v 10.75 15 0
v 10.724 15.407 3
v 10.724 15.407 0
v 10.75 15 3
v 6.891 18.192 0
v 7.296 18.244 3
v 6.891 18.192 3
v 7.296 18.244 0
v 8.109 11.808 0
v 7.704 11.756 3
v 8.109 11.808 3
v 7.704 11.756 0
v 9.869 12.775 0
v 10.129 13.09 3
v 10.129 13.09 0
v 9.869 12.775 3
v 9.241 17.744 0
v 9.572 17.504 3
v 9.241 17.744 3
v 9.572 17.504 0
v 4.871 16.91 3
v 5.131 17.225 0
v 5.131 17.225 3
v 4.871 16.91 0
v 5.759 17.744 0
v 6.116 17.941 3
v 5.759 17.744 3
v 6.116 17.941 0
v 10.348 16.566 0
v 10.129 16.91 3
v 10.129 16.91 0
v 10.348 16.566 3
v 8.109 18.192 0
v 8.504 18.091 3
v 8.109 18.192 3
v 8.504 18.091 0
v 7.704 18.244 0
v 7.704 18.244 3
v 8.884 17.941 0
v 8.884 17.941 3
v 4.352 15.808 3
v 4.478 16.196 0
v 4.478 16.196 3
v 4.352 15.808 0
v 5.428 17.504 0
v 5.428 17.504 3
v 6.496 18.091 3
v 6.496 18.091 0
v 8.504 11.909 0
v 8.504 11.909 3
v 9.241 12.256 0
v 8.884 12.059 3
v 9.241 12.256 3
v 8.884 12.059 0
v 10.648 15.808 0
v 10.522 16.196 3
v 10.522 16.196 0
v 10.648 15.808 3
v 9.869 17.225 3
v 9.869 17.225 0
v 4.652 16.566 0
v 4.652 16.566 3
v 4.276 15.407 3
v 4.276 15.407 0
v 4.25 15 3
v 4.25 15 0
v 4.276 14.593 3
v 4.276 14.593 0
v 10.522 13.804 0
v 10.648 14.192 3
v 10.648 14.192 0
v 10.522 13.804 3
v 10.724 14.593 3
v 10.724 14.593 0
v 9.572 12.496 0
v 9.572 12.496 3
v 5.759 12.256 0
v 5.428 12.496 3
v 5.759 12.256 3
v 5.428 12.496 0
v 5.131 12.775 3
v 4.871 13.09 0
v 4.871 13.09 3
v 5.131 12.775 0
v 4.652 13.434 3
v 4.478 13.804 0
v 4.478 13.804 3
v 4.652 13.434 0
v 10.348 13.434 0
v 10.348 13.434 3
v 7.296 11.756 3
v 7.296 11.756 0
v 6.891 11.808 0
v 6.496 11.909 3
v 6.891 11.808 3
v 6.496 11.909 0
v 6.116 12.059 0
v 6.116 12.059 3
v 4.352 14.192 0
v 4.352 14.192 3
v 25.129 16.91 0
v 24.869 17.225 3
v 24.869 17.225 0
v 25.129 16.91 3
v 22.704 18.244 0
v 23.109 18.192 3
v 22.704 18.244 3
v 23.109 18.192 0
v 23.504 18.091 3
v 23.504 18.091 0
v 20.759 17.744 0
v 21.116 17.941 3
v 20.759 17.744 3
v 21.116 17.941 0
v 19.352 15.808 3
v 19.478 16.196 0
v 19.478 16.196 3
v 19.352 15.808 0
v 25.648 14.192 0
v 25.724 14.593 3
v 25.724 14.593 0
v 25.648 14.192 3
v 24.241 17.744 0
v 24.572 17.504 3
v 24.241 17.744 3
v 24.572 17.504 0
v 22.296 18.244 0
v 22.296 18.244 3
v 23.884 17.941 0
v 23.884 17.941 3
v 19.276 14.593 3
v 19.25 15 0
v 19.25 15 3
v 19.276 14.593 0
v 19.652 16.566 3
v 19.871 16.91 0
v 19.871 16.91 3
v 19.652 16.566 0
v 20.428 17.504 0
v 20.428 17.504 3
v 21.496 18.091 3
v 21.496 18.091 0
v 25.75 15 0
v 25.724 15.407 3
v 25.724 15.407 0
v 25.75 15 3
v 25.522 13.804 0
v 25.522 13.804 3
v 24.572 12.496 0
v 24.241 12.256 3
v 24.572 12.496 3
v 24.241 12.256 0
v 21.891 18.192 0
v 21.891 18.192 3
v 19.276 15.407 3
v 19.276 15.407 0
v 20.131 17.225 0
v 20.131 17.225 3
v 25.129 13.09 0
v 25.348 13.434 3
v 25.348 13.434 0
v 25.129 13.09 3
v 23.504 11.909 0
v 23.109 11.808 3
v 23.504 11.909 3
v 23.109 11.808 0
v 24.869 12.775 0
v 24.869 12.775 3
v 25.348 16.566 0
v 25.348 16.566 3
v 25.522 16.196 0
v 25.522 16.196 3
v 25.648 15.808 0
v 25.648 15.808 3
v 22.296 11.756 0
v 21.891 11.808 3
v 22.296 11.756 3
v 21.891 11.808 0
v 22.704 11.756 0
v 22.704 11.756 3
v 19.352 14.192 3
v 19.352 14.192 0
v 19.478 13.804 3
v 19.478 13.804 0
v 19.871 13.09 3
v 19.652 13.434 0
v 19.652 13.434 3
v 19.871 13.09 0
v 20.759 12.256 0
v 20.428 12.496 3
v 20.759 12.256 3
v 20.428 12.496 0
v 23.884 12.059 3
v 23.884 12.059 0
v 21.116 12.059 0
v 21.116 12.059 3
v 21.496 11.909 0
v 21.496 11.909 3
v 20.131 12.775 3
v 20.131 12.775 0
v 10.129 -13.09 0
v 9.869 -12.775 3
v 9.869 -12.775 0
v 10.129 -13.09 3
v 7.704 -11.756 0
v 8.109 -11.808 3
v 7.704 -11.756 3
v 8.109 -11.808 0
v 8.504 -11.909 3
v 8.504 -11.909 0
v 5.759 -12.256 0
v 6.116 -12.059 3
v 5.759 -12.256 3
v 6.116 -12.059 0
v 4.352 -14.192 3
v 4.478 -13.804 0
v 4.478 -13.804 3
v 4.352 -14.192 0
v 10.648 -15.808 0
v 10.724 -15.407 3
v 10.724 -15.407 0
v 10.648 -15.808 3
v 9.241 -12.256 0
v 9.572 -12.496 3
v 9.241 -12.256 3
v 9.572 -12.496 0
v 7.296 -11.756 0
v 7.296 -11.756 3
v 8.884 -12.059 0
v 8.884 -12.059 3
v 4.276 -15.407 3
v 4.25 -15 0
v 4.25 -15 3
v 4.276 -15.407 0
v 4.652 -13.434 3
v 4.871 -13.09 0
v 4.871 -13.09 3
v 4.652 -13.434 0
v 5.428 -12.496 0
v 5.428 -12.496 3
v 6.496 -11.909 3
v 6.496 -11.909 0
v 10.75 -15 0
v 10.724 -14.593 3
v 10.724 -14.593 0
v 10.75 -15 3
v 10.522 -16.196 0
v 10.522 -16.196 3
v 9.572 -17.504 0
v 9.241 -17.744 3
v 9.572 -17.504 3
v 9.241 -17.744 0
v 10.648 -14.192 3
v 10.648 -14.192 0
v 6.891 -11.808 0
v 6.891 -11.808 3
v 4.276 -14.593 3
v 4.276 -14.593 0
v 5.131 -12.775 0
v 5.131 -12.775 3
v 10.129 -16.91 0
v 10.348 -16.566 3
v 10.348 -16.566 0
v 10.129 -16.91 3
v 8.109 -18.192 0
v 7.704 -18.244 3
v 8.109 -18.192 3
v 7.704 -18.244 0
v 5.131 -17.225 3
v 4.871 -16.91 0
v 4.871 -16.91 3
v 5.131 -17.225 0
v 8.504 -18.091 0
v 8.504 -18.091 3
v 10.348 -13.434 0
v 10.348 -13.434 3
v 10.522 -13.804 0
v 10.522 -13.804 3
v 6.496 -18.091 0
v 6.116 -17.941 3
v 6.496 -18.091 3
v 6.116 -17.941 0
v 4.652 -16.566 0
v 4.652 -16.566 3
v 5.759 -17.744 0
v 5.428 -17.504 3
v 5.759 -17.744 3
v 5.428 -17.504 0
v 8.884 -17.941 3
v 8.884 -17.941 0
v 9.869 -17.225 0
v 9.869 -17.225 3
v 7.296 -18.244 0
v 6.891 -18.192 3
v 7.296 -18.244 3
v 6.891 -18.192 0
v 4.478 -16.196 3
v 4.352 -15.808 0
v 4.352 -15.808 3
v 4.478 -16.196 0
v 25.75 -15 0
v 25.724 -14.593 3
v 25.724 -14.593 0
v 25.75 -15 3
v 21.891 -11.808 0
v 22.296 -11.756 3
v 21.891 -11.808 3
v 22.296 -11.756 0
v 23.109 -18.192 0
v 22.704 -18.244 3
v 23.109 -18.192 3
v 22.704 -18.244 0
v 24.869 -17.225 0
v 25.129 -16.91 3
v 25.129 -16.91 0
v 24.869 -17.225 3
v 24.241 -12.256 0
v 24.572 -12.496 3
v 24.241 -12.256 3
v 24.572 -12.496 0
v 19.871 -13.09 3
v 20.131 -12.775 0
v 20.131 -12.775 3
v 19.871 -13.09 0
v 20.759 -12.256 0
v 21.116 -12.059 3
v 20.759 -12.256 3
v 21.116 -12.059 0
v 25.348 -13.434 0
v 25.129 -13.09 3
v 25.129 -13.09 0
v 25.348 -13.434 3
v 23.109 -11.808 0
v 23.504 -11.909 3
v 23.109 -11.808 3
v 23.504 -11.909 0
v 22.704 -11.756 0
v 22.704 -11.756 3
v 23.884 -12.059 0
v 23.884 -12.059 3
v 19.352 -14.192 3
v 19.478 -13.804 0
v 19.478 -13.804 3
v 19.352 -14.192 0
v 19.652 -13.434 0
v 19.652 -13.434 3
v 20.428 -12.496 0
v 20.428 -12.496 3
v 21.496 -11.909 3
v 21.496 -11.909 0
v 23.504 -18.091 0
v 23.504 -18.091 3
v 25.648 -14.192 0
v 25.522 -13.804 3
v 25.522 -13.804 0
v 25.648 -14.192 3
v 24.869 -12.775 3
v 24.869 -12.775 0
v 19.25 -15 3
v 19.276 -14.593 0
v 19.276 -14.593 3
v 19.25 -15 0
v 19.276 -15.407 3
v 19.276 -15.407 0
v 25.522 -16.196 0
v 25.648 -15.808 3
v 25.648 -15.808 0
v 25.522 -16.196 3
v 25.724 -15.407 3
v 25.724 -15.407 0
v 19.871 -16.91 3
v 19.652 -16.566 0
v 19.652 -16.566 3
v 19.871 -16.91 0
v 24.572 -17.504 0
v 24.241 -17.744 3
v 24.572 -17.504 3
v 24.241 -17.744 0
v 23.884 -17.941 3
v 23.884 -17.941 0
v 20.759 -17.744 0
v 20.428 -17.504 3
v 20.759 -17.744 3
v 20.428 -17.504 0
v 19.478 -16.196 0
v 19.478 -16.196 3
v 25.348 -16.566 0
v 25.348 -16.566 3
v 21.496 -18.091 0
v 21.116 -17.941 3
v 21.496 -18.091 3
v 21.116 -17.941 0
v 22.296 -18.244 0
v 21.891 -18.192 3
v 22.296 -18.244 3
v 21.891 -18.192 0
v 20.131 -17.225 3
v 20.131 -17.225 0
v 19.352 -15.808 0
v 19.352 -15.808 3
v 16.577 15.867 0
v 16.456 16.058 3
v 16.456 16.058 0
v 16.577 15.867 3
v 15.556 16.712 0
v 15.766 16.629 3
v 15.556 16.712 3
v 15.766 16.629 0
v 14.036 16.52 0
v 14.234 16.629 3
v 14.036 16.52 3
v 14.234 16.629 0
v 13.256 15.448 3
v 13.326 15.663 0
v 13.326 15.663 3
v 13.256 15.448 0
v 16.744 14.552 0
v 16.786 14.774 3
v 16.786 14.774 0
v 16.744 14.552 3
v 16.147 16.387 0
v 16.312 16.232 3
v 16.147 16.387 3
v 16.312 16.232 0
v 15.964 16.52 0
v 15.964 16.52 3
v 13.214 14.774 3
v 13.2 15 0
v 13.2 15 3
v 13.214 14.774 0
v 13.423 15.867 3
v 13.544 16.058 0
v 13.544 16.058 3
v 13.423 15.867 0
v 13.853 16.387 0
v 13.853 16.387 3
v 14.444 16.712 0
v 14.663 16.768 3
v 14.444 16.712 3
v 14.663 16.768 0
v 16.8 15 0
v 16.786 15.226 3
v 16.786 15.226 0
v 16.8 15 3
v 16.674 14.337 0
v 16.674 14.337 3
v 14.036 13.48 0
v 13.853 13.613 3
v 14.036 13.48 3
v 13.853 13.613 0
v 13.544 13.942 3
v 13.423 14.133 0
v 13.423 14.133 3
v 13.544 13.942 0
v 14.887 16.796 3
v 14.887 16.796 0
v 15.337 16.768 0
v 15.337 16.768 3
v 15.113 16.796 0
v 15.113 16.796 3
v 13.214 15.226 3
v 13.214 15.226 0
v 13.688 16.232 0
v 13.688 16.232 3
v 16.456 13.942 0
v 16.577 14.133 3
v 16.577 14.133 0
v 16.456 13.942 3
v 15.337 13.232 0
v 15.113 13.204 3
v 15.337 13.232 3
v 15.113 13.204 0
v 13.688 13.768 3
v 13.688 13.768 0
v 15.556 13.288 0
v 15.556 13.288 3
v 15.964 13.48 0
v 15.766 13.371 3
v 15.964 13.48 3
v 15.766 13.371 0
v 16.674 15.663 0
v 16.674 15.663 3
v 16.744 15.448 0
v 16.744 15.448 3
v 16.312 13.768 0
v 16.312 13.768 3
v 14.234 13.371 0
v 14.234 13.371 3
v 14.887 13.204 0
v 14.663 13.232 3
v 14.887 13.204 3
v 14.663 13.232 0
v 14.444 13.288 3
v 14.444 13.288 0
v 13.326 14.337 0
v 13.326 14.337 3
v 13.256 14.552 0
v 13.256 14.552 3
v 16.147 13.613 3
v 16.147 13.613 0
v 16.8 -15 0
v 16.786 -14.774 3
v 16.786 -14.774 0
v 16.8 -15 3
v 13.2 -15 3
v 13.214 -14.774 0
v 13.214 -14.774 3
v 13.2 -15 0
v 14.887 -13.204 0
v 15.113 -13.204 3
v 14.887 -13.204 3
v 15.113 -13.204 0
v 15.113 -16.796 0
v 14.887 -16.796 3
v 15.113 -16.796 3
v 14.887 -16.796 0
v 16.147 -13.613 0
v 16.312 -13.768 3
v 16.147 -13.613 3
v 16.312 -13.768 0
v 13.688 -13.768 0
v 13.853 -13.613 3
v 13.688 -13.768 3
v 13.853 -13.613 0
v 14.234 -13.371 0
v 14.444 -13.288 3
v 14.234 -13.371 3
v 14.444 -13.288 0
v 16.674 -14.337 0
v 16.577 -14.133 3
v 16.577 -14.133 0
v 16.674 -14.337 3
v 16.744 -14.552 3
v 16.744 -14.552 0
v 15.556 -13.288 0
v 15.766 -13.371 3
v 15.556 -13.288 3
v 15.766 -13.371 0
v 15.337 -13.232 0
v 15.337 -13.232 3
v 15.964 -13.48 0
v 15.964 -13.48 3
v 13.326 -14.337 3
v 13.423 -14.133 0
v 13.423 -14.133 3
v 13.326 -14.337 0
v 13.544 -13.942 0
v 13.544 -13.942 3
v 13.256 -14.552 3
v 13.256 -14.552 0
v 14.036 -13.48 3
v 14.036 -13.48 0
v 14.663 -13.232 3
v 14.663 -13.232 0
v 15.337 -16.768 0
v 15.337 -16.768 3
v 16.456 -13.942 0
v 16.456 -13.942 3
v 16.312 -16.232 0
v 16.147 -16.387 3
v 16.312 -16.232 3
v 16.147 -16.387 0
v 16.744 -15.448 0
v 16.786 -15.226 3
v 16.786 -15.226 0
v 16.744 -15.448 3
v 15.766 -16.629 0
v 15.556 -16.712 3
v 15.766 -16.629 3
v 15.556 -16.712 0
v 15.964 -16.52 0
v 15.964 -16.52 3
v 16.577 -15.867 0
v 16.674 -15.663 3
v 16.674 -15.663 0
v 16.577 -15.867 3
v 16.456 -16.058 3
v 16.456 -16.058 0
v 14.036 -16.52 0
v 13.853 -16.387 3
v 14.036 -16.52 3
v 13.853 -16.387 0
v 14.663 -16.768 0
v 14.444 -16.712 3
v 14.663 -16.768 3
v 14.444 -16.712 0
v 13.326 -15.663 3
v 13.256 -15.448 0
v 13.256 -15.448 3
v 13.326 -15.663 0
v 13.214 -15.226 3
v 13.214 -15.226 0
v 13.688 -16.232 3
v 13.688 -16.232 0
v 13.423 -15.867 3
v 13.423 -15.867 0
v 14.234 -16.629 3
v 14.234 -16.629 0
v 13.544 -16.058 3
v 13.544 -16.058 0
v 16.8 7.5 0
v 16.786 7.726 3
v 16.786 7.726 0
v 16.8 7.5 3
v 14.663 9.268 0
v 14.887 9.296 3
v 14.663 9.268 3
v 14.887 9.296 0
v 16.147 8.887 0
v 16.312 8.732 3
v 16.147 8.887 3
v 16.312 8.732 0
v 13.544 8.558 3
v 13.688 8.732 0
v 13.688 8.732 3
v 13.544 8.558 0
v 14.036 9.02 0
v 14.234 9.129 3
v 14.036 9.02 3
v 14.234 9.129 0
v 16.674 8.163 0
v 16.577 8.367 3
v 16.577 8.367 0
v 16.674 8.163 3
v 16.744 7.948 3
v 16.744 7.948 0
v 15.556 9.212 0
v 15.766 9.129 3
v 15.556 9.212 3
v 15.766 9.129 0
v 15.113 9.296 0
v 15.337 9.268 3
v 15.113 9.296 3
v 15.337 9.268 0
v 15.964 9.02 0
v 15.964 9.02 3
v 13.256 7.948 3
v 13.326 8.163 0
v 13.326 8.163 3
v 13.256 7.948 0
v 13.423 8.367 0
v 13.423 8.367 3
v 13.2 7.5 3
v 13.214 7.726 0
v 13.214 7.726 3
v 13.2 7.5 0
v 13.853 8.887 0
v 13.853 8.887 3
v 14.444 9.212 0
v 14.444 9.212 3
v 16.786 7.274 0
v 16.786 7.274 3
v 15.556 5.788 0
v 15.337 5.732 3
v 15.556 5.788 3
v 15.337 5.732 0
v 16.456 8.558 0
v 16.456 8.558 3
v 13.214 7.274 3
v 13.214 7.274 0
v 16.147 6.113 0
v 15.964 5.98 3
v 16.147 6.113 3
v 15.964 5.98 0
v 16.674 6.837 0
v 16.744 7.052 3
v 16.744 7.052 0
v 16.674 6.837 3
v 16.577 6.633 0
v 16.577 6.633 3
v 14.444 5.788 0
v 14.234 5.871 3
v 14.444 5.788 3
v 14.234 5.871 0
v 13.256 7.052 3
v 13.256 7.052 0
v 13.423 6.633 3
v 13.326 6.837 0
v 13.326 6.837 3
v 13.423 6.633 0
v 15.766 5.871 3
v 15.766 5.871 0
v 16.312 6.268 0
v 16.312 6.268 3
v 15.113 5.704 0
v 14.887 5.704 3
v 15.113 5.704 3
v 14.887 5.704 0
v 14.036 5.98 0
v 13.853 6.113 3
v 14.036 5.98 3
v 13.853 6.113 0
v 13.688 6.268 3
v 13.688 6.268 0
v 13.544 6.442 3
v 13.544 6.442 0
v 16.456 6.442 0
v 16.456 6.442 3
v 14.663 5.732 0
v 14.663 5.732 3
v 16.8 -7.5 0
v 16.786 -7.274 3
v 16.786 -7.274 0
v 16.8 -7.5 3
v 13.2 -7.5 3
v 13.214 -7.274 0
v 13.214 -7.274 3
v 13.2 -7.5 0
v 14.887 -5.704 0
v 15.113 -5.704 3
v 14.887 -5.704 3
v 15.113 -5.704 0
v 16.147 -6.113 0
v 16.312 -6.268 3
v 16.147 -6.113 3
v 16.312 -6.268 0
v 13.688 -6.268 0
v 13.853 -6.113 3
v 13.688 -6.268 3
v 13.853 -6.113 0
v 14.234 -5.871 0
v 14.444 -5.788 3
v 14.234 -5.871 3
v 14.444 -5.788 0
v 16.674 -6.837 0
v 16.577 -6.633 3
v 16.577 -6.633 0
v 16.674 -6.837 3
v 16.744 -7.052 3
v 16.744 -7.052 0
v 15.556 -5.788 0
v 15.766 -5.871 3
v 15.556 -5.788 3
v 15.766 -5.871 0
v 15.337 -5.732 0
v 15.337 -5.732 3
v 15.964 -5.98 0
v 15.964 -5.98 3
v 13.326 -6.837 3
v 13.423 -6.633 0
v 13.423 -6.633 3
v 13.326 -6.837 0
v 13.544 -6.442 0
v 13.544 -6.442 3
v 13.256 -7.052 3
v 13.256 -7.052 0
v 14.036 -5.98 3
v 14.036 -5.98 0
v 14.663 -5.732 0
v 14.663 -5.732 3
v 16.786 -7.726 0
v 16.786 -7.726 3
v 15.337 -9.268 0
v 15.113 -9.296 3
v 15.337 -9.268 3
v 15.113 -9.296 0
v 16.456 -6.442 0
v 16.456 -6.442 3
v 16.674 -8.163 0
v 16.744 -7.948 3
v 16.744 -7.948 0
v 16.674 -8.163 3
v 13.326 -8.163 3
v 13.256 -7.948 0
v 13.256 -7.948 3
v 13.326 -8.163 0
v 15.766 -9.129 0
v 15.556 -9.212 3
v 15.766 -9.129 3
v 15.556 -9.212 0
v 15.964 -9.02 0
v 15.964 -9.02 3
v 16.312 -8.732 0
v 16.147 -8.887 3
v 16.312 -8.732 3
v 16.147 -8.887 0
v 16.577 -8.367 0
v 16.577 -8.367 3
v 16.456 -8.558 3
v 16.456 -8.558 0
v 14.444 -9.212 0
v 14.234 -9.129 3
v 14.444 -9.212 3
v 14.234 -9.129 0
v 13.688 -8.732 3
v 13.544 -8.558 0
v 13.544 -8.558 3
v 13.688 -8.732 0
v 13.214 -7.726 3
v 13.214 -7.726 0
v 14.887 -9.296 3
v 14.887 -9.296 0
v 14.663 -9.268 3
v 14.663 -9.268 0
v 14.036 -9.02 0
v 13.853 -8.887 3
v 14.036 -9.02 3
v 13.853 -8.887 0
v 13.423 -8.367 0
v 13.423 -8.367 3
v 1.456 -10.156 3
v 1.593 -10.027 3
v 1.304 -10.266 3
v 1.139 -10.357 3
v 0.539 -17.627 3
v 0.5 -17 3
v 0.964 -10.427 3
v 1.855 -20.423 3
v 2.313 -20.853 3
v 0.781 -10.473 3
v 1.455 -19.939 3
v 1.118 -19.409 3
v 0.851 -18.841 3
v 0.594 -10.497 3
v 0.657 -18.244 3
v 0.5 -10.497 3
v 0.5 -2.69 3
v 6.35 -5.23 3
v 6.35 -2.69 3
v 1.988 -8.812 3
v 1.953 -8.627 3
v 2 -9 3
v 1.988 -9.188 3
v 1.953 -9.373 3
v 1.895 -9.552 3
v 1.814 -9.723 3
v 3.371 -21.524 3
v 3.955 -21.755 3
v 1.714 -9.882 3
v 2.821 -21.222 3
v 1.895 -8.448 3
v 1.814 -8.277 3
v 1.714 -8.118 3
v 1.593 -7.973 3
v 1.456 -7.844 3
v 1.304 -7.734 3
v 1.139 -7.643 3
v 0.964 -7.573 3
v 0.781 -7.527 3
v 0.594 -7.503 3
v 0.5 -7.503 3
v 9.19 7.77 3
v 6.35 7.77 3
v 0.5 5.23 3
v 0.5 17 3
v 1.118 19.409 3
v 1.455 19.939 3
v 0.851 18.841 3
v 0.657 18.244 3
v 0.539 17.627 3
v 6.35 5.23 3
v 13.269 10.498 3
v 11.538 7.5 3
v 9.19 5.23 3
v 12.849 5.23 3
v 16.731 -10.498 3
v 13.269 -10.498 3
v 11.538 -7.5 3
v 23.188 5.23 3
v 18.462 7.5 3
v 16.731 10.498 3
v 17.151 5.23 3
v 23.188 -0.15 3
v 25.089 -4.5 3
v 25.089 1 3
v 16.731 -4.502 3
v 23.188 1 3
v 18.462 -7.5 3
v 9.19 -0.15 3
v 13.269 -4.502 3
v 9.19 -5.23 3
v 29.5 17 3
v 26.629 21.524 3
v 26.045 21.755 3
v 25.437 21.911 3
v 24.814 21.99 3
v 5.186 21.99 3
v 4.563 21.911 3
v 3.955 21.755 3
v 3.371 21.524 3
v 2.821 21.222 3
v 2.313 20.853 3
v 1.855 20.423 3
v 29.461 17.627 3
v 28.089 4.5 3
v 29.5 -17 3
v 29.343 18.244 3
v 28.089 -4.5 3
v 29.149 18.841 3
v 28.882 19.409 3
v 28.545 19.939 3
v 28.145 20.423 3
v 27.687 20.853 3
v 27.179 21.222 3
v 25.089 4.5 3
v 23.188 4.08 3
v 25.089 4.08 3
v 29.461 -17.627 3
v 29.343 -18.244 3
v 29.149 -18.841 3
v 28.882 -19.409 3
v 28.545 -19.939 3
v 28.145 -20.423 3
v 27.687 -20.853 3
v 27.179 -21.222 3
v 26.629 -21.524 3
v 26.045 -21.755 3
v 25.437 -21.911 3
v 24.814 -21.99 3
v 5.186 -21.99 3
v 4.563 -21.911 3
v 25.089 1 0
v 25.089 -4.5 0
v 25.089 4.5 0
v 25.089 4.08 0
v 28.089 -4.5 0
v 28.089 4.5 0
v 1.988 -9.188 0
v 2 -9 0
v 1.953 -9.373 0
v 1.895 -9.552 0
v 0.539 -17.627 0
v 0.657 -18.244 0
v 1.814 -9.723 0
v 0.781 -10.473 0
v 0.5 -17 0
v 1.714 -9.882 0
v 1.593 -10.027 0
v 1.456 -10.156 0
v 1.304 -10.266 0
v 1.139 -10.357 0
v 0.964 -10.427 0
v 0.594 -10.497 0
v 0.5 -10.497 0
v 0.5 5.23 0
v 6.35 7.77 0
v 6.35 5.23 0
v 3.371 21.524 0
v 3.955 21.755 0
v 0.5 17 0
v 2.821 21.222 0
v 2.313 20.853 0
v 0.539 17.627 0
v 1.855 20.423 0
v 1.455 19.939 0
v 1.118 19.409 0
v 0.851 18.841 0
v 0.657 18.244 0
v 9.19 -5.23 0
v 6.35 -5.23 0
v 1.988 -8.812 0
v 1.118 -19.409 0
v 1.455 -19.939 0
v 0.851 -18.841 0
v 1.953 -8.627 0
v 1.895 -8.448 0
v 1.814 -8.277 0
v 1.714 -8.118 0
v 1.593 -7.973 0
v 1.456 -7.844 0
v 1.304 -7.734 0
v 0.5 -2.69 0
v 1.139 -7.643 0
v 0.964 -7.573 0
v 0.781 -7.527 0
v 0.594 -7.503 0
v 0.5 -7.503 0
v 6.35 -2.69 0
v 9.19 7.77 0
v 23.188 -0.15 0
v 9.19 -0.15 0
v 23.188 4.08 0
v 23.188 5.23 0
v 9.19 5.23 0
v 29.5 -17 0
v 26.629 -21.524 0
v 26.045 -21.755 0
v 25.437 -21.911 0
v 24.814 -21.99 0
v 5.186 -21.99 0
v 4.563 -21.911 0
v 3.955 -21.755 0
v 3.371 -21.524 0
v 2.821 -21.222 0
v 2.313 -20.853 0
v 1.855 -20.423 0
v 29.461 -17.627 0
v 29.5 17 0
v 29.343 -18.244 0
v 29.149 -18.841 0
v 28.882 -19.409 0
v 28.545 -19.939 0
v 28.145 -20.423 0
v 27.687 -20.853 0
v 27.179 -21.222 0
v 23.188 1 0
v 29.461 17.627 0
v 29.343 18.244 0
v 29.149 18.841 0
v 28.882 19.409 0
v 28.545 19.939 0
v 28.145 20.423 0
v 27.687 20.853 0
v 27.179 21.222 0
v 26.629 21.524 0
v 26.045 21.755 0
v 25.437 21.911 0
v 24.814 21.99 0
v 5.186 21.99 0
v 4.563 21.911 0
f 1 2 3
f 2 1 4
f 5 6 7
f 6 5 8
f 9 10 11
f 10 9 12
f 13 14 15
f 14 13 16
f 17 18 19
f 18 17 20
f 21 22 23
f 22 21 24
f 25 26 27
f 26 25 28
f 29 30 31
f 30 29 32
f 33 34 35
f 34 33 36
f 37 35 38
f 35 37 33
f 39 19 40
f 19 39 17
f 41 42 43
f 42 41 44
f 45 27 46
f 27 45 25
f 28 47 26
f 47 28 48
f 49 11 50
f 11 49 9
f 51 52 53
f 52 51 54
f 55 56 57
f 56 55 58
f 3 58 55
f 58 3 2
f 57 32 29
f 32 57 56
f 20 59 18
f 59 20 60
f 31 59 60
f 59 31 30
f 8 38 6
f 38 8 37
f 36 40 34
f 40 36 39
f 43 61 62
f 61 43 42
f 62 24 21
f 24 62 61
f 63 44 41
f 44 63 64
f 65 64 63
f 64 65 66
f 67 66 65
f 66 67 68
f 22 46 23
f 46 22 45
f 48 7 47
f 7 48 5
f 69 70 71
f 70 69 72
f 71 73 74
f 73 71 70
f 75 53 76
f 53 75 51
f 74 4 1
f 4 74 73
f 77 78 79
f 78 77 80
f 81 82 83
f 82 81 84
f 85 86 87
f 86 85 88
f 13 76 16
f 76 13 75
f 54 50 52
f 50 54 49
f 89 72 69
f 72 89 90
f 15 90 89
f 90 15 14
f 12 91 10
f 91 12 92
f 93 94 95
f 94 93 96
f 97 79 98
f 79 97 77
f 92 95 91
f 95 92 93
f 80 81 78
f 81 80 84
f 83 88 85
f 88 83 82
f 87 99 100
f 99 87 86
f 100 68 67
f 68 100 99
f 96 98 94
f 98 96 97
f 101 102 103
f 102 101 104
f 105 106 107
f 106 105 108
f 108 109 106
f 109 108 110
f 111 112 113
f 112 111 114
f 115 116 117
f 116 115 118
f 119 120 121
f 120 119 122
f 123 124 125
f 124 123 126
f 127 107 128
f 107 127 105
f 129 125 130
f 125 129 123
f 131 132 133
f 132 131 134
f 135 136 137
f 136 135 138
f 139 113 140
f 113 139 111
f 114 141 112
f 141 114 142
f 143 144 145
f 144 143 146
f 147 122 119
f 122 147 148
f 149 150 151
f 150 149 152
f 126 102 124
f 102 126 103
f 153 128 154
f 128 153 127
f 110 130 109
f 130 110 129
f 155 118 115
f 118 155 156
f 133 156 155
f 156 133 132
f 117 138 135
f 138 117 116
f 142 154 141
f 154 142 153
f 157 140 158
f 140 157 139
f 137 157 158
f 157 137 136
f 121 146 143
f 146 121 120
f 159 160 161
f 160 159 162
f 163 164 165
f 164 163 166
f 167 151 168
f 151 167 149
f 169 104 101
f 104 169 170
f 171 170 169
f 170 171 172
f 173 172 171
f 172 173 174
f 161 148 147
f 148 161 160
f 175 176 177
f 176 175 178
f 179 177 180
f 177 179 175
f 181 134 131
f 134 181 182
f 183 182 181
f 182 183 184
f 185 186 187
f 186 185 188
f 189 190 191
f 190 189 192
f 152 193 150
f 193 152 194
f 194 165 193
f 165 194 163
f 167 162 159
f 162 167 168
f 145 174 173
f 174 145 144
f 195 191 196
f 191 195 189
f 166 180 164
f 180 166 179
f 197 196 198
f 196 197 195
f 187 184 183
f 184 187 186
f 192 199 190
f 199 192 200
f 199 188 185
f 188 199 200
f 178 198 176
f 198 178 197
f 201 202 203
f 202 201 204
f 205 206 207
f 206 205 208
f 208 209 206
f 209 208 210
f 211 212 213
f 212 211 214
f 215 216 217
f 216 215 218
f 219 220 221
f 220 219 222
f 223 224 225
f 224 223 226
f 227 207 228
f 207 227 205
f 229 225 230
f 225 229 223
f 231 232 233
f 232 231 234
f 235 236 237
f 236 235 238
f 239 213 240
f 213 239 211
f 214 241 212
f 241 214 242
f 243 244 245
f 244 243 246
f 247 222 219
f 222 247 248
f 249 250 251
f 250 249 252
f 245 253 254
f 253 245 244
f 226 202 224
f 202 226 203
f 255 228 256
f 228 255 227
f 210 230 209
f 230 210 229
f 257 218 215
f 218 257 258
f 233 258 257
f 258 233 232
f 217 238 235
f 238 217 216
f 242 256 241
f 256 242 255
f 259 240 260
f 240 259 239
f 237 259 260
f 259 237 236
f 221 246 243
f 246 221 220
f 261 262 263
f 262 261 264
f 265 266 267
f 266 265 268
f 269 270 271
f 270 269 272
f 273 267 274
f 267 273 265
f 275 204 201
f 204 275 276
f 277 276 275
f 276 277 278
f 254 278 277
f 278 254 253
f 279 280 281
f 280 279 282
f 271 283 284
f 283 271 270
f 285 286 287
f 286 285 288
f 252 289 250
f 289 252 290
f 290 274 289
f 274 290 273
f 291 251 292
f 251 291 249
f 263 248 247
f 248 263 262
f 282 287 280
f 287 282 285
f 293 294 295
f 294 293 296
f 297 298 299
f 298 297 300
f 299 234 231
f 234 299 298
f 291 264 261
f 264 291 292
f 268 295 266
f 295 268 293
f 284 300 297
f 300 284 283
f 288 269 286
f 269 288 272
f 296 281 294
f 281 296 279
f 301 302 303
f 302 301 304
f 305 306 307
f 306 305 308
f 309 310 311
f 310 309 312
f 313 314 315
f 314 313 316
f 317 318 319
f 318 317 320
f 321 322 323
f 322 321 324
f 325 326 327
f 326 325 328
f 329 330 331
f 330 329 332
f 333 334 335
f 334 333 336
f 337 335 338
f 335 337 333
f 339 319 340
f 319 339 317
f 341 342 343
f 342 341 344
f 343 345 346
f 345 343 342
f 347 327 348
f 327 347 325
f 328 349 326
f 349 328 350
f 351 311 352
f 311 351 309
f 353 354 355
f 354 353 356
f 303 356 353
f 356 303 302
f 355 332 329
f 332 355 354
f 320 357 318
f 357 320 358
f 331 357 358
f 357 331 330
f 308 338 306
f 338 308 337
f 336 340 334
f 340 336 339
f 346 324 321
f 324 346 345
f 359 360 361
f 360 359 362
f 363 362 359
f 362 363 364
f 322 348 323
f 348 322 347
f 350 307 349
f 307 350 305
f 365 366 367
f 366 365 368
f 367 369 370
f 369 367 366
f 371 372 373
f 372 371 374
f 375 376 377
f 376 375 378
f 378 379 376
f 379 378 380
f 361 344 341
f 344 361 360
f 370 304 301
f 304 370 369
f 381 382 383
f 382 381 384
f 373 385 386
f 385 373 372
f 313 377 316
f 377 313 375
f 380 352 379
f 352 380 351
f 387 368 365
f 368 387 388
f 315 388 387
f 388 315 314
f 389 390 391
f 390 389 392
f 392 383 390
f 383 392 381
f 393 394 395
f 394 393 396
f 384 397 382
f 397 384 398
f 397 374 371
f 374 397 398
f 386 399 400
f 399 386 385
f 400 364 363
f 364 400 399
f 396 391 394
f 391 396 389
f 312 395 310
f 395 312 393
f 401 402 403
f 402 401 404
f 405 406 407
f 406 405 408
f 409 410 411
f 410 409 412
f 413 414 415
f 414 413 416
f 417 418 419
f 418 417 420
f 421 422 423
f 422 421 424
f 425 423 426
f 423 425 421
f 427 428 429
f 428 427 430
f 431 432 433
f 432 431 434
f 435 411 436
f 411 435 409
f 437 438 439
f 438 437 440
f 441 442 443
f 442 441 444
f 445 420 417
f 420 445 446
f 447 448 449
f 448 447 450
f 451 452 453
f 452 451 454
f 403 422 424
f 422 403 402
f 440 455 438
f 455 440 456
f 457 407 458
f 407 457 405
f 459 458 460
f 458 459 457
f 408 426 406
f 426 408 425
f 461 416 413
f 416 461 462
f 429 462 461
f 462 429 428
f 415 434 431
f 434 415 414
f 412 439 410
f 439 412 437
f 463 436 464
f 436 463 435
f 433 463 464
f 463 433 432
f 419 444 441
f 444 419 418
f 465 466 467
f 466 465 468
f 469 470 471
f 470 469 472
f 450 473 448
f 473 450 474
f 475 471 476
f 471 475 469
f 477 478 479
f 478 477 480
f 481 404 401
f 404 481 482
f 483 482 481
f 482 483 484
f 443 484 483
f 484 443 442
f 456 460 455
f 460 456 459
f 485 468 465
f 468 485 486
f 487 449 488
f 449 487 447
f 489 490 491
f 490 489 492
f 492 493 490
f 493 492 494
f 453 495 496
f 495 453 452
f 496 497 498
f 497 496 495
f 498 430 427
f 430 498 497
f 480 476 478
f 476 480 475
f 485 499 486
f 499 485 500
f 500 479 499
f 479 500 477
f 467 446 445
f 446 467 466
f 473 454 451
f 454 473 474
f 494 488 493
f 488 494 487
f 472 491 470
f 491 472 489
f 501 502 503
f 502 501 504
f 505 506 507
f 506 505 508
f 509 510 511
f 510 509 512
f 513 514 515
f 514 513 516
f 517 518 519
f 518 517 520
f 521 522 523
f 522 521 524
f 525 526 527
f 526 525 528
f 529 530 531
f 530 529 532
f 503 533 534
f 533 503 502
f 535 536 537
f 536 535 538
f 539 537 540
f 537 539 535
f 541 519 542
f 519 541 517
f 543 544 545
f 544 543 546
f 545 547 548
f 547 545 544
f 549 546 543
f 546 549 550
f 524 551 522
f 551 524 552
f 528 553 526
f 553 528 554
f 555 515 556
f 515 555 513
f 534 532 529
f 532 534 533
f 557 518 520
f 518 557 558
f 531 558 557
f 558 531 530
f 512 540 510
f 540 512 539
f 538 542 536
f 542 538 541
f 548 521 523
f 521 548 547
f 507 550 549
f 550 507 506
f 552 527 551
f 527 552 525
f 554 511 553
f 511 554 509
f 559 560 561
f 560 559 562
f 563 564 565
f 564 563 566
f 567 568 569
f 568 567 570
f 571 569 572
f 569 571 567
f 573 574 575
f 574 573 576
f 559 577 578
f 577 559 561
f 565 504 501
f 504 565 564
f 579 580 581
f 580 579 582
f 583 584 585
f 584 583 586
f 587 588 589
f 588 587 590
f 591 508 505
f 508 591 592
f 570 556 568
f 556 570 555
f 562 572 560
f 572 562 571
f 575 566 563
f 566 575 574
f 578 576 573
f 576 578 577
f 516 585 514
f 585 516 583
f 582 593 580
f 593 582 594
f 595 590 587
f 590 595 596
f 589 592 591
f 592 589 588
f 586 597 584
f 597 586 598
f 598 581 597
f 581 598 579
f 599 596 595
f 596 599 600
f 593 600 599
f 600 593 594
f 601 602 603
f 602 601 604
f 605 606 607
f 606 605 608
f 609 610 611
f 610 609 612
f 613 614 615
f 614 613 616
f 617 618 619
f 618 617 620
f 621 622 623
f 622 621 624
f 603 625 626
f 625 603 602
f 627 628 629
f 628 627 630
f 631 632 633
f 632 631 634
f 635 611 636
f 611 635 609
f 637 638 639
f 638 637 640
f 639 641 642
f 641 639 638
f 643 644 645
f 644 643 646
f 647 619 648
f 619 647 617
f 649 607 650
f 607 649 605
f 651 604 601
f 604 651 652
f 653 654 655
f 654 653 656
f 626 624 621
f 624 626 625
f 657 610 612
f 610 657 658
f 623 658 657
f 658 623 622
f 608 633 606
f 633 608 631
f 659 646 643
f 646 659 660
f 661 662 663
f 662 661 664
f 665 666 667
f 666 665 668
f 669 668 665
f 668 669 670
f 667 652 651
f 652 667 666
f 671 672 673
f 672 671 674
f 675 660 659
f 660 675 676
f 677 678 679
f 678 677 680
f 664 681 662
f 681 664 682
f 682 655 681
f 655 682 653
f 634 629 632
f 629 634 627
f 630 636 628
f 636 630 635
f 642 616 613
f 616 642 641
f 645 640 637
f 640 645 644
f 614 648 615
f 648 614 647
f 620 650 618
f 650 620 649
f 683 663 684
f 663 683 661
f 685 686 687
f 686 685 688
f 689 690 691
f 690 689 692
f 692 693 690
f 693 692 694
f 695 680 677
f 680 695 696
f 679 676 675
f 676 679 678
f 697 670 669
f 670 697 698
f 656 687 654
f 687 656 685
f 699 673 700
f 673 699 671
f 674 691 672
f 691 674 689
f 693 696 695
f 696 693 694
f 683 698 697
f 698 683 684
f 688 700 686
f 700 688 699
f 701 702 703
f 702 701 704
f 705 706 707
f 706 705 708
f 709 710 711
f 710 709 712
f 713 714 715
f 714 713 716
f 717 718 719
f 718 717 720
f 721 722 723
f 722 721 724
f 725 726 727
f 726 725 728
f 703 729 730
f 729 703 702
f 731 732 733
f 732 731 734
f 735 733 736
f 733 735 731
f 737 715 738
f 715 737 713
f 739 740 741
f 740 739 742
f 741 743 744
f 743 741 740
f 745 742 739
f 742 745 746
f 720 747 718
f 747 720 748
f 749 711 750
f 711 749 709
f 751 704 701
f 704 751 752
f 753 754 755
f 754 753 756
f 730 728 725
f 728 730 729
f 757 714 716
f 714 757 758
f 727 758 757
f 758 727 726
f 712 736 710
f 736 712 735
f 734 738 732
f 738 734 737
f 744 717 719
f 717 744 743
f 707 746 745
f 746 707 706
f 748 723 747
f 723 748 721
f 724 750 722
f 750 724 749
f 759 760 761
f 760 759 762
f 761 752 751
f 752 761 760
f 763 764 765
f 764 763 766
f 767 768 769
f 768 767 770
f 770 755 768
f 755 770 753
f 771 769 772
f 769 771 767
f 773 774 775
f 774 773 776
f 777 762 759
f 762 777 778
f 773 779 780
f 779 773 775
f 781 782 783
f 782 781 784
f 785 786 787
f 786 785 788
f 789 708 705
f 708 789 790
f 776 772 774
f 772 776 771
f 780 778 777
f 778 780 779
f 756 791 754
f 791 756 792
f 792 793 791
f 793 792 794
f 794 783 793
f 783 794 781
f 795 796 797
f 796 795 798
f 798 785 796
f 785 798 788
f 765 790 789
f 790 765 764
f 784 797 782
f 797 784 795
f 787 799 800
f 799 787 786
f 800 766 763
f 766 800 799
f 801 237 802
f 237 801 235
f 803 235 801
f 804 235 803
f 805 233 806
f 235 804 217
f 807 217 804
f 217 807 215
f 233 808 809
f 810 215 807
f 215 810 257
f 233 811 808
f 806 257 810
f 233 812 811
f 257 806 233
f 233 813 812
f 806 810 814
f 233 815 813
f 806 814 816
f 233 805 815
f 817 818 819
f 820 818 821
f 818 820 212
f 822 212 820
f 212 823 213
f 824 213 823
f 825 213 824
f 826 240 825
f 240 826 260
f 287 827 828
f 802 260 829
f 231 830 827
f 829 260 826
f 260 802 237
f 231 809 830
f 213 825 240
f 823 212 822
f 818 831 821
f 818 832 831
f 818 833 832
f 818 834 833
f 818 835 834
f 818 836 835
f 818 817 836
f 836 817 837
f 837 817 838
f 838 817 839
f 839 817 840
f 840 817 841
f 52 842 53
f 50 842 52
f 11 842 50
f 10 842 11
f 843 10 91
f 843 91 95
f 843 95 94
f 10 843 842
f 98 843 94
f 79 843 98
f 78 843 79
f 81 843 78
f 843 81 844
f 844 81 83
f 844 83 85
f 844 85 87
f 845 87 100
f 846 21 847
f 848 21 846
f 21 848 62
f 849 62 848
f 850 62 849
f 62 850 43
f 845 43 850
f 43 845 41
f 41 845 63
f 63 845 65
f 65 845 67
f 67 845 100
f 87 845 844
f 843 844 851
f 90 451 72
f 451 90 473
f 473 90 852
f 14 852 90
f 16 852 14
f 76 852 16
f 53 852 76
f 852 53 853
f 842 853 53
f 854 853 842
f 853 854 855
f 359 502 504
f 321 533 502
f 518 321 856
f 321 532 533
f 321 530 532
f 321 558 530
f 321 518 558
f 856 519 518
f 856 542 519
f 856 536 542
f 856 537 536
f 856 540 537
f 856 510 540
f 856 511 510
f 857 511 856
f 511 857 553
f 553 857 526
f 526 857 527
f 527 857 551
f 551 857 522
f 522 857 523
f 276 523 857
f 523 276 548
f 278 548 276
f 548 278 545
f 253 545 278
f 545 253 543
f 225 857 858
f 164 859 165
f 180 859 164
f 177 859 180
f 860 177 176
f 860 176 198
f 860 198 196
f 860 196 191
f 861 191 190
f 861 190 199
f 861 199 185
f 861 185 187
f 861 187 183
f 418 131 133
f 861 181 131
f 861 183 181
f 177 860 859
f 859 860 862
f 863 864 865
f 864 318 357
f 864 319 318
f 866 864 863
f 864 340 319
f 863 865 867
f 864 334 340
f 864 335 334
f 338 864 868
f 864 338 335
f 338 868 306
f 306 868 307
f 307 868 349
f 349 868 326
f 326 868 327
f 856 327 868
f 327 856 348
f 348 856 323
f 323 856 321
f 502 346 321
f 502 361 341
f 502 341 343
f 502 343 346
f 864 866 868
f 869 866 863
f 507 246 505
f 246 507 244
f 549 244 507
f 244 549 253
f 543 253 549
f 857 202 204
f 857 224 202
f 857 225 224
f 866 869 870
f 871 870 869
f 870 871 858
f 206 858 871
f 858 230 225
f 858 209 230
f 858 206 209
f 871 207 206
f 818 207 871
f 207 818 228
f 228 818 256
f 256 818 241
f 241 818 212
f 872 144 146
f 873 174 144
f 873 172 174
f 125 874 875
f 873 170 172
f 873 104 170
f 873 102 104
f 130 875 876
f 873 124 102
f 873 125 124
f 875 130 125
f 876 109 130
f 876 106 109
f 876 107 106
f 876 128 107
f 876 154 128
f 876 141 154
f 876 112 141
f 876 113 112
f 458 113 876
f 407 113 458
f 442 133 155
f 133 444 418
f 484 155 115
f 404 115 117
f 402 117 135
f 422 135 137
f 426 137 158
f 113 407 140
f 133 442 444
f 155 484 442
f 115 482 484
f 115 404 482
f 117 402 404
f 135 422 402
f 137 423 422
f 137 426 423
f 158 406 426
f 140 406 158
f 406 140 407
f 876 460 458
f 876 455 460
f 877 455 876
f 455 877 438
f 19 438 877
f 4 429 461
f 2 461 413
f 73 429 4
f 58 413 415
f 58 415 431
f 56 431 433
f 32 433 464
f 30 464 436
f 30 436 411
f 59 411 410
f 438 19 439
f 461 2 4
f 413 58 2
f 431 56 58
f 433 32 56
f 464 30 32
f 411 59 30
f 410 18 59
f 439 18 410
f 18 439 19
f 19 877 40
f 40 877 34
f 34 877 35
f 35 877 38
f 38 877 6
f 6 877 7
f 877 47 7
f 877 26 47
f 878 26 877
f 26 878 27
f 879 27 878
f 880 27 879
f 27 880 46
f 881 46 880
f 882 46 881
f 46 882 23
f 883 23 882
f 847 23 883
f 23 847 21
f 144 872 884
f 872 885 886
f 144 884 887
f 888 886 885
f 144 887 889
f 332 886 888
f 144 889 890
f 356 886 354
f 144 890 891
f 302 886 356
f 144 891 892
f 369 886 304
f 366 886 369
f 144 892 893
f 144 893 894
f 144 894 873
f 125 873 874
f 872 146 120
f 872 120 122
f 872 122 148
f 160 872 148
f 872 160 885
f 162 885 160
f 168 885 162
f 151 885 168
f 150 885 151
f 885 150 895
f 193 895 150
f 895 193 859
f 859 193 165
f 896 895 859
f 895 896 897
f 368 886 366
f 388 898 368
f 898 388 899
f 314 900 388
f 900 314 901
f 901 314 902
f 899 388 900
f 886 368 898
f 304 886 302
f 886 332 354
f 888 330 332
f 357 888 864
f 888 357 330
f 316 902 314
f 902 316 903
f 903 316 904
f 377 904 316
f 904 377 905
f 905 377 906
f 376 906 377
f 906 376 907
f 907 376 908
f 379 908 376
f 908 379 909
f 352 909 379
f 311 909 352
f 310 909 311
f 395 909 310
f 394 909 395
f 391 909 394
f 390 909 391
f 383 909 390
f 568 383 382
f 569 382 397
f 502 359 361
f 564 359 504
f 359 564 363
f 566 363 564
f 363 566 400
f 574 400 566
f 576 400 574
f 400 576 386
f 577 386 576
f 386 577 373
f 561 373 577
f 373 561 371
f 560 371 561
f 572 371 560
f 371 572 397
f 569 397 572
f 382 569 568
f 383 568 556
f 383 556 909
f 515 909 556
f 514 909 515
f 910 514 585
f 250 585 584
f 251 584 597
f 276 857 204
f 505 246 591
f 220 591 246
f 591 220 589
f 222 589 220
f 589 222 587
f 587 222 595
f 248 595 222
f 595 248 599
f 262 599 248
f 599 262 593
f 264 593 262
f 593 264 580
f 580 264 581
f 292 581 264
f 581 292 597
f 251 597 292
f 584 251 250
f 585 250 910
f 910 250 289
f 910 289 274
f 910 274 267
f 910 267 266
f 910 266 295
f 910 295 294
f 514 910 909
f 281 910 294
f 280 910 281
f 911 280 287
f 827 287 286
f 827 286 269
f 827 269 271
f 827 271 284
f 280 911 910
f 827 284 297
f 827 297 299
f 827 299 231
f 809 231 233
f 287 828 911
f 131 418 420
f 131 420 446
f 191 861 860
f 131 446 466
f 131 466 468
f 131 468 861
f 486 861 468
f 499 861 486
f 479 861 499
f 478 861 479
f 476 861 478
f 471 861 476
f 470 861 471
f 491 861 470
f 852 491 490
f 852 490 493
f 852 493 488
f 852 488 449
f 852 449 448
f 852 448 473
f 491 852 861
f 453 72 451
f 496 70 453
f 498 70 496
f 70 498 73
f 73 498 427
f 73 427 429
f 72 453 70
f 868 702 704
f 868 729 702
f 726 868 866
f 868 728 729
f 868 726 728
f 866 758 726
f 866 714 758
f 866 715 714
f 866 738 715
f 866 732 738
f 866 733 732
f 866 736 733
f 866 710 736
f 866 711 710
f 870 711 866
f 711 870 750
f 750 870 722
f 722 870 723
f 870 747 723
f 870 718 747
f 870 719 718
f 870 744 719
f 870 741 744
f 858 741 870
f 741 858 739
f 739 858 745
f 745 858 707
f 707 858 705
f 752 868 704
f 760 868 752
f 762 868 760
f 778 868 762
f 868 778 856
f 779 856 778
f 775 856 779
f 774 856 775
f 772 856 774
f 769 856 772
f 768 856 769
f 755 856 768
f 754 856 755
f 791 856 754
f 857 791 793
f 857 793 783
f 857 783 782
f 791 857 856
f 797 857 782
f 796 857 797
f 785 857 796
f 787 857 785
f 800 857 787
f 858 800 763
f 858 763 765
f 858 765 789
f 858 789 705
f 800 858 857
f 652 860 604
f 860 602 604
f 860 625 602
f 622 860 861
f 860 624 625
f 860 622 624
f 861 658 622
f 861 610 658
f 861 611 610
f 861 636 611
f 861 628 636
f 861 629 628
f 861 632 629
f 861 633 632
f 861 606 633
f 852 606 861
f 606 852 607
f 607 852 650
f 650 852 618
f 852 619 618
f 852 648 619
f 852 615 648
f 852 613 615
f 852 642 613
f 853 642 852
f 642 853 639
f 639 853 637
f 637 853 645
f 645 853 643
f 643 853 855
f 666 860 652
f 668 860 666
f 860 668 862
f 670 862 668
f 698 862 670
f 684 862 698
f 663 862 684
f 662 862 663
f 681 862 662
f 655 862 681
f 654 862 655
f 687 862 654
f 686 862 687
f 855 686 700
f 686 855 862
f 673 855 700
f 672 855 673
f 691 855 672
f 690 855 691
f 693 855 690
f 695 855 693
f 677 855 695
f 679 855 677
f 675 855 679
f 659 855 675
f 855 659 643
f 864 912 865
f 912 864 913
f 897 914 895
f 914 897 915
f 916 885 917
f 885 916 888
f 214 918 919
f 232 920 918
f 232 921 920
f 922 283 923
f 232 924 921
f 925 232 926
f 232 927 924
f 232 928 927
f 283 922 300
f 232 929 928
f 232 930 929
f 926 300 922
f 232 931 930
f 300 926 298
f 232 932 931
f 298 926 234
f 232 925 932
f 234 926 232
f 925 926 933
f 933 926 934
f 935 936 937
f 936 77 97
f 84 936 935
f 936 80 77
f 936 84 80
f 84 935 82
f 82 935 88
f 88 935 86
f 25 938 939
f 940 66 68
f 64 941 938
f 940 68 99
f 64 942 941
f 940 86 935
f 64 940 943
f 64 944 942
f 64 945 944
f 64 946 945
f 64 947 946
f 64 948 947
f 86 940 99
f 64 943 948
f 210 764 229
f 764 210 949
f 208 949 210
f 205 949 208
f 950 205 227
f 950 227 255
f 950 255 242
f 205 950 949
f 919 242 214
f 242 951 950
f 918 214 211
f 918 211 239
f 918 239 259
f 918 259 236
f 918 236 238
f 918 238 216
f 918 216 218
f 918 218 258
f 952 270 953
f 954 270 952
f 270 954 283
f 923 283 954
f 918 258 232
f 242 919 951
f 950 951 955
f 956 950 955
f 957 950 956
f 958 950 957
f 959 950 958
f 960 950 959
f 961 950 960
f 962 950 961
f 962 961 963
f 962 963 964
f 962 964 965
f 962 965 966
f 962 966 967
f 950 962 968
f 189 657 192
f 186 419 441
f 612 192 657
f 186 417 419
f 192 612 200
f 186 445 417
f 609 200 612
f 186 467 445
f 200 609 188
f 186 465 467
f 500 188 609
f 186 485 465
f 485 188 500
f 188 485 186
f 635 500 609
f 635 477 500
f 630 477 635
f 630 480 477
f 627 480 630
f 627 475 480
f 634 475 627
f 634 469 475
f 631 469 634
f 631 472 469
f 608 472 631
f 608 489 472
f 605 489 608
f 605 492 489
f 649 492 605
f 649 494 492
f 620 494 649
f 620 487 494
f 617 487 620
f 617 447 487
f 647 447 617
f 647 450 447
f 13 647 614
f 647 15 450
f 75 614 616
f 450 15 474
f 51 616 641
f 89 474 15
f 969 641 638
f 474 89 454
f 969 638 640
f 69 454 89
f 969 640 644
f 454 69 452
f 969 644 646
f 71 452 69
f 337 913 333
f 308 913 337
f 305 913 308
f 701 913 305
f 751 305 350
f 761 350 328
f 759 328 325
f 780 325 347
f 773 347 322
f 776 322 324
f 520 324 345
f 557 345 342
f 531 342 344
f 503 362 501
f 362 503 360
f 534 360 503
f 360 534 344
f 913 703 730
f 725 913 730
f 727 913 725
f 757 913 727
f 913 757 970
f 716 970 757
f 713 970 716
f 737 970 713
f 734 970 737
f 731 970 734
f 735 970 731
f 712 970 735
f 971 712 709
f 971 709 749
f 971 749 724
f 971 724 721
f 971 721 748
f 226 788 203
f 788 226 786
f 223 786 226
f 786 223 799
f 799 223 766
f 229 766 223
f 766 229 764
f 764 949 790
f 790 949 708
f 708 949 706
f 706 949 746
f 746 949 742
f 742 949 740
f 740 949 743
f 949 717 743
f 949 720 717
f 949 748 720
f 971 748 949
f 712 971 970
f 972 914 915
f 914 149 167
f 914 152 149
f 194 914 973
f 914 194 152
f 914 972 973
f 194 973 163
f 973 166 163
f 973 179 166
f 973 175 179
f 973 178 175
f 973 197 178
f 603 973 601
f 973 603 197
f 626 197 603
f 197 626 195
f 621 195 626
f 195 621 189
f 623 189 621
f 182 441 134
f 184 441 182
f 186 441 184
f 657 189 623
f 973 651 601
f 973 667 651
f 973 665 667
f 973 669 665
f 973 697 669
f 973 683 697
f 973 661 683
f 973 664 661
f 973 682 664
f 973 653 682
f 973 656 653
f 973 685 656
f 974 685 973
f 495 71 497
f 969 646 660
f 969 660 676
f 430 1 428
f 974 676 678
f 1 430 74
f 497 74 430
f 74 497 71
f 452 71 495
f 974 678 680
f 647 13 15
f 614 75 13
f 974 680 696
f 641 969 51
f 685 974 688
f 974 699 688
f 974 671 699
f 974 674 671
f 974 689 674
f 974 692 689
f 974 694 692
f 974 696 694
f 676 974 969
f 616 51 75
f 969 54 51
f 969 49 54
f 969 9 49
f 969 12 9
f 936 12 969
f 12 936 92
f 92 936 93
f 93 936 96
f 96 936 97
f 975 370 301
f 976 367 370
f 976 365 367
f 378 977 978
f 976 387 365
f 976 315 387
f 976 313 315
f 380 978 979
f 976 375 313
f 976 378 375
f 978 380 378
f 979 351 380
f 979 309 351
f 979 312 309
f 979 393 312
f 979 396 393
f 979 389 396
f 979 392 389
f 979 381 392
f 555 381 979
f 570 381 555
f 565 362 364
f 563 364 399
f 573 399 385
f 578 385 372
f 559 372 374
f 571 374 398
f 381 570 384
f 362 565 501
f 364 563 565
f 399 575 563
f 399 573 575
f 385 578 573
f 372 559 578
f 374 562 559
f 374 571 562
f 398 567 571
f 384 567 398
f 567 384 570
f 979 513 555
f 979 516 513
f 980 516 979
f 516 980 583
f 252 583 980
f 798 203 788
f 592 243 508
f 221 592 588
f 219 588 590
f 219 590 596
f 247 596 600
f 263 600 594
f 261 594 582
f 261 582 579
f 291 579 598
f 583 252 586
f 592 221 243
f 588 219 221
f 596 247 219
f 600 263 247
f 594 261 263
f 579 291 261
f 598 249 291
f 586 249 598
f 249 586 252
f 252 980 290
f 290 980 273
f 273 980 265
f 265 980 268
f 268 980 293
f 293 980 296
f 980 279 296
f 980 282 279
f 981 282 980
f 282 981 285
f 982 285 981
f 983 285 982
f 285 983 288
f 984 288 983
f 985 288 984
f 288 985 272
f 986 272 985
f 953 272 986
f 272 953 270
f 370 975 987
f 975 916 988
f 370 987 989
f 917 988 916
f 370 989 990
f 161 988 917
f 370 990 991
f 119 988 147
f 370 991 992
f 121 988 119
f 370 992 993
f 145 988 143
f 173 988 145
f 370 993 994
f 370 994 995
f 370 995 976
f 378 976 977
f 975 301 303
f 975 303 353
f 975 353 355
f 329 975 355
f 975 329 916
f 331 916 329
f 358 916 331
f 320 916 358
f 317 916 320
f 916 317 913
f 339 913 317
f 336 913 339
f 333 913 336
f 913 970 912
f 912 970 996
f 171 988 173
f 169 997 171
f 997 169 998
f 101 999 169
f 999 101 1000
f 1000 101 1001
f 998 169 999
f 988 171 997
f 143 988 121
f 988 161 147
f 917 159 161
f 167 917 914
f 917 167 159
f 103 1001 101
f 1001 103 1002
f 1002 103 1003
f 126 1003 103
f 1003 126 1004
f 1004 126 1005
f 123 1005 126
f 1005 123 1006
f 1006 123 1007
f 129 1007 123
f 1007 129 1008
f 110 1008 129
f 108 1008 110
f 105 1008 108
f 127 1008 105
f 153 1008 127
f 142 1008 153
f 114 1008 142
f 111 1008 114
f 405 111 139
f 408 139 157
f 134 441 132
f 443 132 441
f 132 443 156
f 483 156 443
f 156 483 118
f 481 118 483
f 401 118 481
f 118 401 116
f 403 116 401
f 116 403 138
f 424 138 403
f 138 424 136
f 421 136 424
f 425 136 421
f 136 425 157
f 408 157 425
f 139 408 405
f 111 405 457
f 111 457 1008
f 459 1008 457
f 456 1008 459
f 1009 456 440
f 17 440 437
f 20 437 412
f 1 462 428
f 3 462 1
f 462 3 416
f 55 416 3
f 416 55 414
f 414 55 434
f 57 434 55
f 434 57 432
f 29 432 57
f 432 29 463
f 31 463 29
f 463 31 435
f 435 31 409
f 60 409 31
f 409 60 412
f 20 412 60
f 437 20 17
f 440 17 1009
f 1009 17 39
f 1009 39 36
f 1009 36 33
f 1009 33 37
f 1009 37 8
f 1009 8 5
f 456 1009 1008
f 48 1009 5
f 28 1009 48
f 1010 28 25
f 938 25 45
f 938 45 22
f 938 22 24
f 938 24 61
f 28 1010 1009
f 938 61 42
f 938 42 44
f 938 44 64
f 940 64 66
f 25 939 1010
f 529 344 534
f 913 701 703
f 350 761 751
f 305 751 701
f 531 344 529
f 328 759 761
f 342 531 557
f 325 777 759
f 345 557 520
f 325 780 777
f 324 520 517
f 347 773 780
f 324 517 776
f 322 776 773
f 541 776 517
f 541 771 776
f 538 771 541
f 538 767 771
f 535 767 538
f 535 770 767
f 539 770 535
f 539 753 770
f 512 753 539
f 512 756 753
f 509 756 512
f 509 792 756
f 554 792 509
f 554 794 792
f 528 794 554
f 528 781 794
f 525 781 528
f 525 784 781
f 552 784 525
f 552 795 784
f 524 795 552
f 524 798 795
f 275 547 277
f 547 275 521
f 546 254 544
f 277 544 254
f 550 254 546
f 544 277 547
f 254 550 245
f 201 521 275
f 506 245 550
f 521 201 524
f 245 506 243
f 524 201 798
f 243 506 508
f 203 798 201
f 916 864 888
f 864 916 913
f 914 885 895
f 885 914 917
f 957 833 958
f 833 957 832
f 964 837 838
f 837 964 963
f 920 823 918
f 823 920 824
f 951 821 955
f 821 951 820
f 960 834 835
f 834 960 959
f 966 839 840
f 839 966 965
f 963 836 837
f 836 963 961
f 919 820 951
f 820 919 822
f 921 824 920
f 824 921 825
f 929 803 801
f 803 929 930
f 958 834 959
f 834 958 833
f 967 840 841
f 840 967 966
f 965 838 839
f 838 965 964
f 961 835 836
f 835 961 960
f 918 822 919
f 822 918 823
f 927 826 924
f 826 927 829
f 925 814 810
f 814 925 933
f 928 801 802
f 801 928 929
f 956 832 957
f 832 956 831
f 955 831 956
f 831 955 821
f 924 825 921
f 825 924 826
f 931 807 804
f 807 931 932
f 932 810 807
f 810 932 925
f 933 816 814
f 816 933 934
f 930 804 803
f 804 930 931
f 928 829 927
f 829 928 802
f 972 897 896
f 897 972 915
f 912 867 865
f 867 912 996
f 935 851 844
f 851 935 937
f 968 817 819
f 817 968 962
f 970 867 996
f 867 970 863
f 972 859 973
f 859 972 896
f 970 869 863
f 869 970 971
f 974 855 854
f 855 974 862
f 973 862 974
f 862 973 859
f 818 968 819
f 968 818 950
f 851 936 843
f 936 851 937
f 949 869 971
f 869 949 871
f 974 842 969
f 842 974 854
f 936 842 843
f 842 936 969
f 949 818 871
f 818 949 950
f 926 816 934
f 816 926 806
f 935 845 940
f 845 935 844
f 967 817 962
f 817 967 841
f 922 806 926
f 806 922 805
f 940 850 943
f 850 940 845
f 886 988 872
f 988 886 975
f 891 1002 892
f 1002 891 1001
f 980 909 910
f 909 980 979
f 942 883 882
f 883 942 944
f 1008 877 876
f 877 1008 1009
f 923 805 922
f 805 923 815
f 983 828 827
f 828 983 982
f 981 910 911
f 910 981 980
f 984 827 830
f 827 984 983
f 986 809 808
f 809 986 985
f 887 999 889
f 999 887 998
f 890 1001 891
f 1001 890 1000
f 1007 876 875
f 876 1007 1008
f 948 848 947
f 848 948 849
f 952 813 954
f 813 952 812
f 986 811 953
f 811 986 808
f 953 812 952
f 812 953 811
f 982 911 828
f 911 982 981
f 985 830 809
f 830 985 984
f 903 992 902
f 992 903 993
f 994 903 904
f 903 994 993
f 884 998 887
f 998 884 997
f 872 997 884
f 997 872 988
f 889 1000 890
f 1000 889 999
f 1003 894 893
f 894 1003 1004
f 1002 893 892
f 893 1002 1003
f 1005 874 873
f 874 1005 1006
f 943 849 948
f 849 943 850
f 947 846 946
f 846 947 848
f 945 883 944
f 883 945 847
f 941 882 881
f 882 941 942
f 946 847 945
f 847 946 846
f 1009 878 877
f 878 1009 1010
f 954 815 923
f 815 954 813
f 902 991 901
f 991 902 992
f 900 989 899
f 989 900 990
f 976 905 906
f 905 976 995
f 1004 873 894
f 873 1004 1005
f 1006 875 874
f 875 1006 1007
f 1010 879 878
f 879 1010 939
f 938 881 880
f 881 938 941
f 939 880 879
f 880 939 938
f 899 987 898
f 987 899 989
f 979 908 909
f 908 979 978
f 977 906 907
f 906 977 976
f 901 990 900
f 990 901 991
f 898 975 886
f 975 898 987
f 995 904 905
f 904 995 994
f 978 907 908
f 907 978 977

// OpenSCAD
$fn = 50;


difference() {
	union() {
		translate(v = [15.0000000000, 0, 0]) {
			rotate(a = [0, 0, 0]) {
				hull() {
					translate(v = [-9.5000000000, 17.0000000000, 0]) {
						rotate(a = [0, 0, 0]) {
							translate(v = [0, 0, 0]) {
								rotate(a = [0, 0, 0]) {
									cylinder(h = 3, r = 5);
								}
							}
						}
					}
					translate(v = [9.5000000000, 17.0000000000, 0]) {
						rotate(a = [0, 0, 0]) {
							translate(v = [0, 0, 0]) {
								rotate(a = [0, 0, 0]) {
									cylinder(h = 3, r = 5);
								}
							}
						}
					}
					translate(v = [-9.5000000000, -17.0000000000, 0]) {
						rotate(a = [0, 0, 0]) {
							translate(v = [0, 0, 0]) {
								rotate(a = [0, 0, 0]) {
									cylinder(h = 3, r = 5);
								}
							}
						}
					}
					translate(v = [9.5000000000, -17.0000000000, 0]) {
						rotate(a = [0, 0, 0]) {
							translate(v = [0, 0, 0]) {
								rotate(a = [0, 0, 0]) {
									cylinder(h = 3, r = 5);
								}
							}
						}
					}
				}
			}
		}
	}
	union() {
		translate(v = [7.5000000000, 15.0000000000, -125.0000000000]) {
			rotate(a = [0, 0, 0]) {
				cylinder(h = 250, r = 3.2500000000);
			}
		}
		translate(v = [22.5000000000, 15.0000000000, -125.0000000000]) {
			rotate(a = [0, 0, 0]) {
				cylinder(h = 250, r = 3.2500000000);
			}
		}
		translate(v = [7.5000000000, -15.0000000000, -125.0000000000]) {
			rotate(a = [0, 0, 0]) {
				cylinder(h = 250, r = 3.2500000000);
			}
		}
		translate(v = [22.5000000000, -15.0000000000, -125.0000000000]) {
			rotate(a = [0, 0, 0]) {
				cylinder(h = 250, r = 3.2500000000);
			}
		}
		translate(v = [7.5000000000, 15.0000000000, -125.0000000000]) {
			rotate(a = [0, 0, 0]) {
				cylinder(h = 250, r = 1.8000000000);
			}
		}
		translate(v = [15.0000000000, 15.0000000000, -125.0000000000]) {
			rotate(a = [0, 0, 0]) {
				cylinder(h = 250, r = 1.8000000000);
			}
		}
		translate(v = [22.5000000000, 15.0000000000, -125.0000000000]) {
			rotate(a = [0, 0, 0]) {
				cylinder(h = 250, r = 1.8000000000);
			}
		}
		translate(v = [7.5000000000, -15.0000000000, -125.0000000000]) {
			rotate(a = [0, 0, 0]) {
				cylinder(h = 250, r = 1.8000000000);
			}
		}
		translate(v = [15.0000000000, -15.0000000000, -125.0000000000]) {
			rotate(a = [0, 0, 0]) {
				cylinder(h = 250, r = 1.8000000000);
			}
		}
		translate(v = [22.5000000000, -15.0000000000, -125.0000000000]) {
			rotate(a = [0, 0, 0]) {
				cylinder(h = 250, r = 1.8000000000);
			}
		}
		translate(v = [15, 7.5000000000, -125.0000000000]) {
			rotate(a = [0, 0, 0]) {
				cylinder(h = 250, r = 1.8000000000);
			}
		}
		translate(v = [15, -7.5000000000, -125.0000000000]) {
			rotate(a = [0, 0, 0]) {
				cylinder(h = 250, r = 1.8000000000);
			}
		}
		translate(v = [15, 7.5000000000, 3]) {
			rotate(a = [0, 0, 0]) {
				translate(v = [0, 0, 0]) {
					rotate(a = [0, 0, 0]) {
						linear_extrude(height = 3) {
							polygon(points = [[3.4620000000, 0.0000000000], [1.7310000000, 2.9981799479], [-1.7310000000, 2.9981799479], [-3.4620000000, 0.0000000000], [-1.7310000000, -2.9981799479], [1.7310000000, -2.9981799479]]);
						}
					}
				}
			}
		}
		translate(v = [15, -7.5000000000, 3]) {
			rotate(a = [0, 0, 0]) {
				translate(v = [0, 0, 0]) {
					rotate(a = [0, 0, 0]) {
						linear_extrude(height = 3) {
							polygon(points = [[3.4620000000, 0.0000000000], [1.7310000000, 2.9981799479], [-1.7310000000, 2.9981799479], [-3.4620000000, 0.0000000000], [-1.7310000000, -2.9981799479], [1.7310000000, -2.9981799479]]);
						}
					}
				}
			}
		}
		translate(v = [25.0890000000, -4.5000000000, 0]) {
			rotate(a = [0, 0, 0]) {
				cube(size = [3, 9, 10]);
			}
		}
		translate(v = [0.5000000000, -9, 0.0000000000]) {
			rotate(a = [0, 0, 0]) {
				cylinder(h = 3, r = 1.5000000000);
			}
		}
		translate(v = [23.0670000000, -0.2410000000, 0]) {
			rotate(a = [0, 0, 0]) {
				cube(size = [5, 3.0800000000, 3]);
			}
		}
		translate(v = [0.2040000000, -3.9600000000, 0]) {
			rotate(a = [0, 0, 0]) {
				cube(size = [6.3000000000, 7.9200000000, 3]);
			}
		}
		translate(v = [8.8880000000, -1.4200000000, 0]) {
			rotate(a = [0, 0, 0]) {
				cube(size = [14.3000000000, 5.3800000000, 3]);
			}
		}
		translate(v = [6.3500000000, -6.5000000000, 0]) {
			rotate(a = [0, 0, 0]) {
				cube(size = [2.8400000000, 13.0000000000, 3]);
			}
		}
	}
}
